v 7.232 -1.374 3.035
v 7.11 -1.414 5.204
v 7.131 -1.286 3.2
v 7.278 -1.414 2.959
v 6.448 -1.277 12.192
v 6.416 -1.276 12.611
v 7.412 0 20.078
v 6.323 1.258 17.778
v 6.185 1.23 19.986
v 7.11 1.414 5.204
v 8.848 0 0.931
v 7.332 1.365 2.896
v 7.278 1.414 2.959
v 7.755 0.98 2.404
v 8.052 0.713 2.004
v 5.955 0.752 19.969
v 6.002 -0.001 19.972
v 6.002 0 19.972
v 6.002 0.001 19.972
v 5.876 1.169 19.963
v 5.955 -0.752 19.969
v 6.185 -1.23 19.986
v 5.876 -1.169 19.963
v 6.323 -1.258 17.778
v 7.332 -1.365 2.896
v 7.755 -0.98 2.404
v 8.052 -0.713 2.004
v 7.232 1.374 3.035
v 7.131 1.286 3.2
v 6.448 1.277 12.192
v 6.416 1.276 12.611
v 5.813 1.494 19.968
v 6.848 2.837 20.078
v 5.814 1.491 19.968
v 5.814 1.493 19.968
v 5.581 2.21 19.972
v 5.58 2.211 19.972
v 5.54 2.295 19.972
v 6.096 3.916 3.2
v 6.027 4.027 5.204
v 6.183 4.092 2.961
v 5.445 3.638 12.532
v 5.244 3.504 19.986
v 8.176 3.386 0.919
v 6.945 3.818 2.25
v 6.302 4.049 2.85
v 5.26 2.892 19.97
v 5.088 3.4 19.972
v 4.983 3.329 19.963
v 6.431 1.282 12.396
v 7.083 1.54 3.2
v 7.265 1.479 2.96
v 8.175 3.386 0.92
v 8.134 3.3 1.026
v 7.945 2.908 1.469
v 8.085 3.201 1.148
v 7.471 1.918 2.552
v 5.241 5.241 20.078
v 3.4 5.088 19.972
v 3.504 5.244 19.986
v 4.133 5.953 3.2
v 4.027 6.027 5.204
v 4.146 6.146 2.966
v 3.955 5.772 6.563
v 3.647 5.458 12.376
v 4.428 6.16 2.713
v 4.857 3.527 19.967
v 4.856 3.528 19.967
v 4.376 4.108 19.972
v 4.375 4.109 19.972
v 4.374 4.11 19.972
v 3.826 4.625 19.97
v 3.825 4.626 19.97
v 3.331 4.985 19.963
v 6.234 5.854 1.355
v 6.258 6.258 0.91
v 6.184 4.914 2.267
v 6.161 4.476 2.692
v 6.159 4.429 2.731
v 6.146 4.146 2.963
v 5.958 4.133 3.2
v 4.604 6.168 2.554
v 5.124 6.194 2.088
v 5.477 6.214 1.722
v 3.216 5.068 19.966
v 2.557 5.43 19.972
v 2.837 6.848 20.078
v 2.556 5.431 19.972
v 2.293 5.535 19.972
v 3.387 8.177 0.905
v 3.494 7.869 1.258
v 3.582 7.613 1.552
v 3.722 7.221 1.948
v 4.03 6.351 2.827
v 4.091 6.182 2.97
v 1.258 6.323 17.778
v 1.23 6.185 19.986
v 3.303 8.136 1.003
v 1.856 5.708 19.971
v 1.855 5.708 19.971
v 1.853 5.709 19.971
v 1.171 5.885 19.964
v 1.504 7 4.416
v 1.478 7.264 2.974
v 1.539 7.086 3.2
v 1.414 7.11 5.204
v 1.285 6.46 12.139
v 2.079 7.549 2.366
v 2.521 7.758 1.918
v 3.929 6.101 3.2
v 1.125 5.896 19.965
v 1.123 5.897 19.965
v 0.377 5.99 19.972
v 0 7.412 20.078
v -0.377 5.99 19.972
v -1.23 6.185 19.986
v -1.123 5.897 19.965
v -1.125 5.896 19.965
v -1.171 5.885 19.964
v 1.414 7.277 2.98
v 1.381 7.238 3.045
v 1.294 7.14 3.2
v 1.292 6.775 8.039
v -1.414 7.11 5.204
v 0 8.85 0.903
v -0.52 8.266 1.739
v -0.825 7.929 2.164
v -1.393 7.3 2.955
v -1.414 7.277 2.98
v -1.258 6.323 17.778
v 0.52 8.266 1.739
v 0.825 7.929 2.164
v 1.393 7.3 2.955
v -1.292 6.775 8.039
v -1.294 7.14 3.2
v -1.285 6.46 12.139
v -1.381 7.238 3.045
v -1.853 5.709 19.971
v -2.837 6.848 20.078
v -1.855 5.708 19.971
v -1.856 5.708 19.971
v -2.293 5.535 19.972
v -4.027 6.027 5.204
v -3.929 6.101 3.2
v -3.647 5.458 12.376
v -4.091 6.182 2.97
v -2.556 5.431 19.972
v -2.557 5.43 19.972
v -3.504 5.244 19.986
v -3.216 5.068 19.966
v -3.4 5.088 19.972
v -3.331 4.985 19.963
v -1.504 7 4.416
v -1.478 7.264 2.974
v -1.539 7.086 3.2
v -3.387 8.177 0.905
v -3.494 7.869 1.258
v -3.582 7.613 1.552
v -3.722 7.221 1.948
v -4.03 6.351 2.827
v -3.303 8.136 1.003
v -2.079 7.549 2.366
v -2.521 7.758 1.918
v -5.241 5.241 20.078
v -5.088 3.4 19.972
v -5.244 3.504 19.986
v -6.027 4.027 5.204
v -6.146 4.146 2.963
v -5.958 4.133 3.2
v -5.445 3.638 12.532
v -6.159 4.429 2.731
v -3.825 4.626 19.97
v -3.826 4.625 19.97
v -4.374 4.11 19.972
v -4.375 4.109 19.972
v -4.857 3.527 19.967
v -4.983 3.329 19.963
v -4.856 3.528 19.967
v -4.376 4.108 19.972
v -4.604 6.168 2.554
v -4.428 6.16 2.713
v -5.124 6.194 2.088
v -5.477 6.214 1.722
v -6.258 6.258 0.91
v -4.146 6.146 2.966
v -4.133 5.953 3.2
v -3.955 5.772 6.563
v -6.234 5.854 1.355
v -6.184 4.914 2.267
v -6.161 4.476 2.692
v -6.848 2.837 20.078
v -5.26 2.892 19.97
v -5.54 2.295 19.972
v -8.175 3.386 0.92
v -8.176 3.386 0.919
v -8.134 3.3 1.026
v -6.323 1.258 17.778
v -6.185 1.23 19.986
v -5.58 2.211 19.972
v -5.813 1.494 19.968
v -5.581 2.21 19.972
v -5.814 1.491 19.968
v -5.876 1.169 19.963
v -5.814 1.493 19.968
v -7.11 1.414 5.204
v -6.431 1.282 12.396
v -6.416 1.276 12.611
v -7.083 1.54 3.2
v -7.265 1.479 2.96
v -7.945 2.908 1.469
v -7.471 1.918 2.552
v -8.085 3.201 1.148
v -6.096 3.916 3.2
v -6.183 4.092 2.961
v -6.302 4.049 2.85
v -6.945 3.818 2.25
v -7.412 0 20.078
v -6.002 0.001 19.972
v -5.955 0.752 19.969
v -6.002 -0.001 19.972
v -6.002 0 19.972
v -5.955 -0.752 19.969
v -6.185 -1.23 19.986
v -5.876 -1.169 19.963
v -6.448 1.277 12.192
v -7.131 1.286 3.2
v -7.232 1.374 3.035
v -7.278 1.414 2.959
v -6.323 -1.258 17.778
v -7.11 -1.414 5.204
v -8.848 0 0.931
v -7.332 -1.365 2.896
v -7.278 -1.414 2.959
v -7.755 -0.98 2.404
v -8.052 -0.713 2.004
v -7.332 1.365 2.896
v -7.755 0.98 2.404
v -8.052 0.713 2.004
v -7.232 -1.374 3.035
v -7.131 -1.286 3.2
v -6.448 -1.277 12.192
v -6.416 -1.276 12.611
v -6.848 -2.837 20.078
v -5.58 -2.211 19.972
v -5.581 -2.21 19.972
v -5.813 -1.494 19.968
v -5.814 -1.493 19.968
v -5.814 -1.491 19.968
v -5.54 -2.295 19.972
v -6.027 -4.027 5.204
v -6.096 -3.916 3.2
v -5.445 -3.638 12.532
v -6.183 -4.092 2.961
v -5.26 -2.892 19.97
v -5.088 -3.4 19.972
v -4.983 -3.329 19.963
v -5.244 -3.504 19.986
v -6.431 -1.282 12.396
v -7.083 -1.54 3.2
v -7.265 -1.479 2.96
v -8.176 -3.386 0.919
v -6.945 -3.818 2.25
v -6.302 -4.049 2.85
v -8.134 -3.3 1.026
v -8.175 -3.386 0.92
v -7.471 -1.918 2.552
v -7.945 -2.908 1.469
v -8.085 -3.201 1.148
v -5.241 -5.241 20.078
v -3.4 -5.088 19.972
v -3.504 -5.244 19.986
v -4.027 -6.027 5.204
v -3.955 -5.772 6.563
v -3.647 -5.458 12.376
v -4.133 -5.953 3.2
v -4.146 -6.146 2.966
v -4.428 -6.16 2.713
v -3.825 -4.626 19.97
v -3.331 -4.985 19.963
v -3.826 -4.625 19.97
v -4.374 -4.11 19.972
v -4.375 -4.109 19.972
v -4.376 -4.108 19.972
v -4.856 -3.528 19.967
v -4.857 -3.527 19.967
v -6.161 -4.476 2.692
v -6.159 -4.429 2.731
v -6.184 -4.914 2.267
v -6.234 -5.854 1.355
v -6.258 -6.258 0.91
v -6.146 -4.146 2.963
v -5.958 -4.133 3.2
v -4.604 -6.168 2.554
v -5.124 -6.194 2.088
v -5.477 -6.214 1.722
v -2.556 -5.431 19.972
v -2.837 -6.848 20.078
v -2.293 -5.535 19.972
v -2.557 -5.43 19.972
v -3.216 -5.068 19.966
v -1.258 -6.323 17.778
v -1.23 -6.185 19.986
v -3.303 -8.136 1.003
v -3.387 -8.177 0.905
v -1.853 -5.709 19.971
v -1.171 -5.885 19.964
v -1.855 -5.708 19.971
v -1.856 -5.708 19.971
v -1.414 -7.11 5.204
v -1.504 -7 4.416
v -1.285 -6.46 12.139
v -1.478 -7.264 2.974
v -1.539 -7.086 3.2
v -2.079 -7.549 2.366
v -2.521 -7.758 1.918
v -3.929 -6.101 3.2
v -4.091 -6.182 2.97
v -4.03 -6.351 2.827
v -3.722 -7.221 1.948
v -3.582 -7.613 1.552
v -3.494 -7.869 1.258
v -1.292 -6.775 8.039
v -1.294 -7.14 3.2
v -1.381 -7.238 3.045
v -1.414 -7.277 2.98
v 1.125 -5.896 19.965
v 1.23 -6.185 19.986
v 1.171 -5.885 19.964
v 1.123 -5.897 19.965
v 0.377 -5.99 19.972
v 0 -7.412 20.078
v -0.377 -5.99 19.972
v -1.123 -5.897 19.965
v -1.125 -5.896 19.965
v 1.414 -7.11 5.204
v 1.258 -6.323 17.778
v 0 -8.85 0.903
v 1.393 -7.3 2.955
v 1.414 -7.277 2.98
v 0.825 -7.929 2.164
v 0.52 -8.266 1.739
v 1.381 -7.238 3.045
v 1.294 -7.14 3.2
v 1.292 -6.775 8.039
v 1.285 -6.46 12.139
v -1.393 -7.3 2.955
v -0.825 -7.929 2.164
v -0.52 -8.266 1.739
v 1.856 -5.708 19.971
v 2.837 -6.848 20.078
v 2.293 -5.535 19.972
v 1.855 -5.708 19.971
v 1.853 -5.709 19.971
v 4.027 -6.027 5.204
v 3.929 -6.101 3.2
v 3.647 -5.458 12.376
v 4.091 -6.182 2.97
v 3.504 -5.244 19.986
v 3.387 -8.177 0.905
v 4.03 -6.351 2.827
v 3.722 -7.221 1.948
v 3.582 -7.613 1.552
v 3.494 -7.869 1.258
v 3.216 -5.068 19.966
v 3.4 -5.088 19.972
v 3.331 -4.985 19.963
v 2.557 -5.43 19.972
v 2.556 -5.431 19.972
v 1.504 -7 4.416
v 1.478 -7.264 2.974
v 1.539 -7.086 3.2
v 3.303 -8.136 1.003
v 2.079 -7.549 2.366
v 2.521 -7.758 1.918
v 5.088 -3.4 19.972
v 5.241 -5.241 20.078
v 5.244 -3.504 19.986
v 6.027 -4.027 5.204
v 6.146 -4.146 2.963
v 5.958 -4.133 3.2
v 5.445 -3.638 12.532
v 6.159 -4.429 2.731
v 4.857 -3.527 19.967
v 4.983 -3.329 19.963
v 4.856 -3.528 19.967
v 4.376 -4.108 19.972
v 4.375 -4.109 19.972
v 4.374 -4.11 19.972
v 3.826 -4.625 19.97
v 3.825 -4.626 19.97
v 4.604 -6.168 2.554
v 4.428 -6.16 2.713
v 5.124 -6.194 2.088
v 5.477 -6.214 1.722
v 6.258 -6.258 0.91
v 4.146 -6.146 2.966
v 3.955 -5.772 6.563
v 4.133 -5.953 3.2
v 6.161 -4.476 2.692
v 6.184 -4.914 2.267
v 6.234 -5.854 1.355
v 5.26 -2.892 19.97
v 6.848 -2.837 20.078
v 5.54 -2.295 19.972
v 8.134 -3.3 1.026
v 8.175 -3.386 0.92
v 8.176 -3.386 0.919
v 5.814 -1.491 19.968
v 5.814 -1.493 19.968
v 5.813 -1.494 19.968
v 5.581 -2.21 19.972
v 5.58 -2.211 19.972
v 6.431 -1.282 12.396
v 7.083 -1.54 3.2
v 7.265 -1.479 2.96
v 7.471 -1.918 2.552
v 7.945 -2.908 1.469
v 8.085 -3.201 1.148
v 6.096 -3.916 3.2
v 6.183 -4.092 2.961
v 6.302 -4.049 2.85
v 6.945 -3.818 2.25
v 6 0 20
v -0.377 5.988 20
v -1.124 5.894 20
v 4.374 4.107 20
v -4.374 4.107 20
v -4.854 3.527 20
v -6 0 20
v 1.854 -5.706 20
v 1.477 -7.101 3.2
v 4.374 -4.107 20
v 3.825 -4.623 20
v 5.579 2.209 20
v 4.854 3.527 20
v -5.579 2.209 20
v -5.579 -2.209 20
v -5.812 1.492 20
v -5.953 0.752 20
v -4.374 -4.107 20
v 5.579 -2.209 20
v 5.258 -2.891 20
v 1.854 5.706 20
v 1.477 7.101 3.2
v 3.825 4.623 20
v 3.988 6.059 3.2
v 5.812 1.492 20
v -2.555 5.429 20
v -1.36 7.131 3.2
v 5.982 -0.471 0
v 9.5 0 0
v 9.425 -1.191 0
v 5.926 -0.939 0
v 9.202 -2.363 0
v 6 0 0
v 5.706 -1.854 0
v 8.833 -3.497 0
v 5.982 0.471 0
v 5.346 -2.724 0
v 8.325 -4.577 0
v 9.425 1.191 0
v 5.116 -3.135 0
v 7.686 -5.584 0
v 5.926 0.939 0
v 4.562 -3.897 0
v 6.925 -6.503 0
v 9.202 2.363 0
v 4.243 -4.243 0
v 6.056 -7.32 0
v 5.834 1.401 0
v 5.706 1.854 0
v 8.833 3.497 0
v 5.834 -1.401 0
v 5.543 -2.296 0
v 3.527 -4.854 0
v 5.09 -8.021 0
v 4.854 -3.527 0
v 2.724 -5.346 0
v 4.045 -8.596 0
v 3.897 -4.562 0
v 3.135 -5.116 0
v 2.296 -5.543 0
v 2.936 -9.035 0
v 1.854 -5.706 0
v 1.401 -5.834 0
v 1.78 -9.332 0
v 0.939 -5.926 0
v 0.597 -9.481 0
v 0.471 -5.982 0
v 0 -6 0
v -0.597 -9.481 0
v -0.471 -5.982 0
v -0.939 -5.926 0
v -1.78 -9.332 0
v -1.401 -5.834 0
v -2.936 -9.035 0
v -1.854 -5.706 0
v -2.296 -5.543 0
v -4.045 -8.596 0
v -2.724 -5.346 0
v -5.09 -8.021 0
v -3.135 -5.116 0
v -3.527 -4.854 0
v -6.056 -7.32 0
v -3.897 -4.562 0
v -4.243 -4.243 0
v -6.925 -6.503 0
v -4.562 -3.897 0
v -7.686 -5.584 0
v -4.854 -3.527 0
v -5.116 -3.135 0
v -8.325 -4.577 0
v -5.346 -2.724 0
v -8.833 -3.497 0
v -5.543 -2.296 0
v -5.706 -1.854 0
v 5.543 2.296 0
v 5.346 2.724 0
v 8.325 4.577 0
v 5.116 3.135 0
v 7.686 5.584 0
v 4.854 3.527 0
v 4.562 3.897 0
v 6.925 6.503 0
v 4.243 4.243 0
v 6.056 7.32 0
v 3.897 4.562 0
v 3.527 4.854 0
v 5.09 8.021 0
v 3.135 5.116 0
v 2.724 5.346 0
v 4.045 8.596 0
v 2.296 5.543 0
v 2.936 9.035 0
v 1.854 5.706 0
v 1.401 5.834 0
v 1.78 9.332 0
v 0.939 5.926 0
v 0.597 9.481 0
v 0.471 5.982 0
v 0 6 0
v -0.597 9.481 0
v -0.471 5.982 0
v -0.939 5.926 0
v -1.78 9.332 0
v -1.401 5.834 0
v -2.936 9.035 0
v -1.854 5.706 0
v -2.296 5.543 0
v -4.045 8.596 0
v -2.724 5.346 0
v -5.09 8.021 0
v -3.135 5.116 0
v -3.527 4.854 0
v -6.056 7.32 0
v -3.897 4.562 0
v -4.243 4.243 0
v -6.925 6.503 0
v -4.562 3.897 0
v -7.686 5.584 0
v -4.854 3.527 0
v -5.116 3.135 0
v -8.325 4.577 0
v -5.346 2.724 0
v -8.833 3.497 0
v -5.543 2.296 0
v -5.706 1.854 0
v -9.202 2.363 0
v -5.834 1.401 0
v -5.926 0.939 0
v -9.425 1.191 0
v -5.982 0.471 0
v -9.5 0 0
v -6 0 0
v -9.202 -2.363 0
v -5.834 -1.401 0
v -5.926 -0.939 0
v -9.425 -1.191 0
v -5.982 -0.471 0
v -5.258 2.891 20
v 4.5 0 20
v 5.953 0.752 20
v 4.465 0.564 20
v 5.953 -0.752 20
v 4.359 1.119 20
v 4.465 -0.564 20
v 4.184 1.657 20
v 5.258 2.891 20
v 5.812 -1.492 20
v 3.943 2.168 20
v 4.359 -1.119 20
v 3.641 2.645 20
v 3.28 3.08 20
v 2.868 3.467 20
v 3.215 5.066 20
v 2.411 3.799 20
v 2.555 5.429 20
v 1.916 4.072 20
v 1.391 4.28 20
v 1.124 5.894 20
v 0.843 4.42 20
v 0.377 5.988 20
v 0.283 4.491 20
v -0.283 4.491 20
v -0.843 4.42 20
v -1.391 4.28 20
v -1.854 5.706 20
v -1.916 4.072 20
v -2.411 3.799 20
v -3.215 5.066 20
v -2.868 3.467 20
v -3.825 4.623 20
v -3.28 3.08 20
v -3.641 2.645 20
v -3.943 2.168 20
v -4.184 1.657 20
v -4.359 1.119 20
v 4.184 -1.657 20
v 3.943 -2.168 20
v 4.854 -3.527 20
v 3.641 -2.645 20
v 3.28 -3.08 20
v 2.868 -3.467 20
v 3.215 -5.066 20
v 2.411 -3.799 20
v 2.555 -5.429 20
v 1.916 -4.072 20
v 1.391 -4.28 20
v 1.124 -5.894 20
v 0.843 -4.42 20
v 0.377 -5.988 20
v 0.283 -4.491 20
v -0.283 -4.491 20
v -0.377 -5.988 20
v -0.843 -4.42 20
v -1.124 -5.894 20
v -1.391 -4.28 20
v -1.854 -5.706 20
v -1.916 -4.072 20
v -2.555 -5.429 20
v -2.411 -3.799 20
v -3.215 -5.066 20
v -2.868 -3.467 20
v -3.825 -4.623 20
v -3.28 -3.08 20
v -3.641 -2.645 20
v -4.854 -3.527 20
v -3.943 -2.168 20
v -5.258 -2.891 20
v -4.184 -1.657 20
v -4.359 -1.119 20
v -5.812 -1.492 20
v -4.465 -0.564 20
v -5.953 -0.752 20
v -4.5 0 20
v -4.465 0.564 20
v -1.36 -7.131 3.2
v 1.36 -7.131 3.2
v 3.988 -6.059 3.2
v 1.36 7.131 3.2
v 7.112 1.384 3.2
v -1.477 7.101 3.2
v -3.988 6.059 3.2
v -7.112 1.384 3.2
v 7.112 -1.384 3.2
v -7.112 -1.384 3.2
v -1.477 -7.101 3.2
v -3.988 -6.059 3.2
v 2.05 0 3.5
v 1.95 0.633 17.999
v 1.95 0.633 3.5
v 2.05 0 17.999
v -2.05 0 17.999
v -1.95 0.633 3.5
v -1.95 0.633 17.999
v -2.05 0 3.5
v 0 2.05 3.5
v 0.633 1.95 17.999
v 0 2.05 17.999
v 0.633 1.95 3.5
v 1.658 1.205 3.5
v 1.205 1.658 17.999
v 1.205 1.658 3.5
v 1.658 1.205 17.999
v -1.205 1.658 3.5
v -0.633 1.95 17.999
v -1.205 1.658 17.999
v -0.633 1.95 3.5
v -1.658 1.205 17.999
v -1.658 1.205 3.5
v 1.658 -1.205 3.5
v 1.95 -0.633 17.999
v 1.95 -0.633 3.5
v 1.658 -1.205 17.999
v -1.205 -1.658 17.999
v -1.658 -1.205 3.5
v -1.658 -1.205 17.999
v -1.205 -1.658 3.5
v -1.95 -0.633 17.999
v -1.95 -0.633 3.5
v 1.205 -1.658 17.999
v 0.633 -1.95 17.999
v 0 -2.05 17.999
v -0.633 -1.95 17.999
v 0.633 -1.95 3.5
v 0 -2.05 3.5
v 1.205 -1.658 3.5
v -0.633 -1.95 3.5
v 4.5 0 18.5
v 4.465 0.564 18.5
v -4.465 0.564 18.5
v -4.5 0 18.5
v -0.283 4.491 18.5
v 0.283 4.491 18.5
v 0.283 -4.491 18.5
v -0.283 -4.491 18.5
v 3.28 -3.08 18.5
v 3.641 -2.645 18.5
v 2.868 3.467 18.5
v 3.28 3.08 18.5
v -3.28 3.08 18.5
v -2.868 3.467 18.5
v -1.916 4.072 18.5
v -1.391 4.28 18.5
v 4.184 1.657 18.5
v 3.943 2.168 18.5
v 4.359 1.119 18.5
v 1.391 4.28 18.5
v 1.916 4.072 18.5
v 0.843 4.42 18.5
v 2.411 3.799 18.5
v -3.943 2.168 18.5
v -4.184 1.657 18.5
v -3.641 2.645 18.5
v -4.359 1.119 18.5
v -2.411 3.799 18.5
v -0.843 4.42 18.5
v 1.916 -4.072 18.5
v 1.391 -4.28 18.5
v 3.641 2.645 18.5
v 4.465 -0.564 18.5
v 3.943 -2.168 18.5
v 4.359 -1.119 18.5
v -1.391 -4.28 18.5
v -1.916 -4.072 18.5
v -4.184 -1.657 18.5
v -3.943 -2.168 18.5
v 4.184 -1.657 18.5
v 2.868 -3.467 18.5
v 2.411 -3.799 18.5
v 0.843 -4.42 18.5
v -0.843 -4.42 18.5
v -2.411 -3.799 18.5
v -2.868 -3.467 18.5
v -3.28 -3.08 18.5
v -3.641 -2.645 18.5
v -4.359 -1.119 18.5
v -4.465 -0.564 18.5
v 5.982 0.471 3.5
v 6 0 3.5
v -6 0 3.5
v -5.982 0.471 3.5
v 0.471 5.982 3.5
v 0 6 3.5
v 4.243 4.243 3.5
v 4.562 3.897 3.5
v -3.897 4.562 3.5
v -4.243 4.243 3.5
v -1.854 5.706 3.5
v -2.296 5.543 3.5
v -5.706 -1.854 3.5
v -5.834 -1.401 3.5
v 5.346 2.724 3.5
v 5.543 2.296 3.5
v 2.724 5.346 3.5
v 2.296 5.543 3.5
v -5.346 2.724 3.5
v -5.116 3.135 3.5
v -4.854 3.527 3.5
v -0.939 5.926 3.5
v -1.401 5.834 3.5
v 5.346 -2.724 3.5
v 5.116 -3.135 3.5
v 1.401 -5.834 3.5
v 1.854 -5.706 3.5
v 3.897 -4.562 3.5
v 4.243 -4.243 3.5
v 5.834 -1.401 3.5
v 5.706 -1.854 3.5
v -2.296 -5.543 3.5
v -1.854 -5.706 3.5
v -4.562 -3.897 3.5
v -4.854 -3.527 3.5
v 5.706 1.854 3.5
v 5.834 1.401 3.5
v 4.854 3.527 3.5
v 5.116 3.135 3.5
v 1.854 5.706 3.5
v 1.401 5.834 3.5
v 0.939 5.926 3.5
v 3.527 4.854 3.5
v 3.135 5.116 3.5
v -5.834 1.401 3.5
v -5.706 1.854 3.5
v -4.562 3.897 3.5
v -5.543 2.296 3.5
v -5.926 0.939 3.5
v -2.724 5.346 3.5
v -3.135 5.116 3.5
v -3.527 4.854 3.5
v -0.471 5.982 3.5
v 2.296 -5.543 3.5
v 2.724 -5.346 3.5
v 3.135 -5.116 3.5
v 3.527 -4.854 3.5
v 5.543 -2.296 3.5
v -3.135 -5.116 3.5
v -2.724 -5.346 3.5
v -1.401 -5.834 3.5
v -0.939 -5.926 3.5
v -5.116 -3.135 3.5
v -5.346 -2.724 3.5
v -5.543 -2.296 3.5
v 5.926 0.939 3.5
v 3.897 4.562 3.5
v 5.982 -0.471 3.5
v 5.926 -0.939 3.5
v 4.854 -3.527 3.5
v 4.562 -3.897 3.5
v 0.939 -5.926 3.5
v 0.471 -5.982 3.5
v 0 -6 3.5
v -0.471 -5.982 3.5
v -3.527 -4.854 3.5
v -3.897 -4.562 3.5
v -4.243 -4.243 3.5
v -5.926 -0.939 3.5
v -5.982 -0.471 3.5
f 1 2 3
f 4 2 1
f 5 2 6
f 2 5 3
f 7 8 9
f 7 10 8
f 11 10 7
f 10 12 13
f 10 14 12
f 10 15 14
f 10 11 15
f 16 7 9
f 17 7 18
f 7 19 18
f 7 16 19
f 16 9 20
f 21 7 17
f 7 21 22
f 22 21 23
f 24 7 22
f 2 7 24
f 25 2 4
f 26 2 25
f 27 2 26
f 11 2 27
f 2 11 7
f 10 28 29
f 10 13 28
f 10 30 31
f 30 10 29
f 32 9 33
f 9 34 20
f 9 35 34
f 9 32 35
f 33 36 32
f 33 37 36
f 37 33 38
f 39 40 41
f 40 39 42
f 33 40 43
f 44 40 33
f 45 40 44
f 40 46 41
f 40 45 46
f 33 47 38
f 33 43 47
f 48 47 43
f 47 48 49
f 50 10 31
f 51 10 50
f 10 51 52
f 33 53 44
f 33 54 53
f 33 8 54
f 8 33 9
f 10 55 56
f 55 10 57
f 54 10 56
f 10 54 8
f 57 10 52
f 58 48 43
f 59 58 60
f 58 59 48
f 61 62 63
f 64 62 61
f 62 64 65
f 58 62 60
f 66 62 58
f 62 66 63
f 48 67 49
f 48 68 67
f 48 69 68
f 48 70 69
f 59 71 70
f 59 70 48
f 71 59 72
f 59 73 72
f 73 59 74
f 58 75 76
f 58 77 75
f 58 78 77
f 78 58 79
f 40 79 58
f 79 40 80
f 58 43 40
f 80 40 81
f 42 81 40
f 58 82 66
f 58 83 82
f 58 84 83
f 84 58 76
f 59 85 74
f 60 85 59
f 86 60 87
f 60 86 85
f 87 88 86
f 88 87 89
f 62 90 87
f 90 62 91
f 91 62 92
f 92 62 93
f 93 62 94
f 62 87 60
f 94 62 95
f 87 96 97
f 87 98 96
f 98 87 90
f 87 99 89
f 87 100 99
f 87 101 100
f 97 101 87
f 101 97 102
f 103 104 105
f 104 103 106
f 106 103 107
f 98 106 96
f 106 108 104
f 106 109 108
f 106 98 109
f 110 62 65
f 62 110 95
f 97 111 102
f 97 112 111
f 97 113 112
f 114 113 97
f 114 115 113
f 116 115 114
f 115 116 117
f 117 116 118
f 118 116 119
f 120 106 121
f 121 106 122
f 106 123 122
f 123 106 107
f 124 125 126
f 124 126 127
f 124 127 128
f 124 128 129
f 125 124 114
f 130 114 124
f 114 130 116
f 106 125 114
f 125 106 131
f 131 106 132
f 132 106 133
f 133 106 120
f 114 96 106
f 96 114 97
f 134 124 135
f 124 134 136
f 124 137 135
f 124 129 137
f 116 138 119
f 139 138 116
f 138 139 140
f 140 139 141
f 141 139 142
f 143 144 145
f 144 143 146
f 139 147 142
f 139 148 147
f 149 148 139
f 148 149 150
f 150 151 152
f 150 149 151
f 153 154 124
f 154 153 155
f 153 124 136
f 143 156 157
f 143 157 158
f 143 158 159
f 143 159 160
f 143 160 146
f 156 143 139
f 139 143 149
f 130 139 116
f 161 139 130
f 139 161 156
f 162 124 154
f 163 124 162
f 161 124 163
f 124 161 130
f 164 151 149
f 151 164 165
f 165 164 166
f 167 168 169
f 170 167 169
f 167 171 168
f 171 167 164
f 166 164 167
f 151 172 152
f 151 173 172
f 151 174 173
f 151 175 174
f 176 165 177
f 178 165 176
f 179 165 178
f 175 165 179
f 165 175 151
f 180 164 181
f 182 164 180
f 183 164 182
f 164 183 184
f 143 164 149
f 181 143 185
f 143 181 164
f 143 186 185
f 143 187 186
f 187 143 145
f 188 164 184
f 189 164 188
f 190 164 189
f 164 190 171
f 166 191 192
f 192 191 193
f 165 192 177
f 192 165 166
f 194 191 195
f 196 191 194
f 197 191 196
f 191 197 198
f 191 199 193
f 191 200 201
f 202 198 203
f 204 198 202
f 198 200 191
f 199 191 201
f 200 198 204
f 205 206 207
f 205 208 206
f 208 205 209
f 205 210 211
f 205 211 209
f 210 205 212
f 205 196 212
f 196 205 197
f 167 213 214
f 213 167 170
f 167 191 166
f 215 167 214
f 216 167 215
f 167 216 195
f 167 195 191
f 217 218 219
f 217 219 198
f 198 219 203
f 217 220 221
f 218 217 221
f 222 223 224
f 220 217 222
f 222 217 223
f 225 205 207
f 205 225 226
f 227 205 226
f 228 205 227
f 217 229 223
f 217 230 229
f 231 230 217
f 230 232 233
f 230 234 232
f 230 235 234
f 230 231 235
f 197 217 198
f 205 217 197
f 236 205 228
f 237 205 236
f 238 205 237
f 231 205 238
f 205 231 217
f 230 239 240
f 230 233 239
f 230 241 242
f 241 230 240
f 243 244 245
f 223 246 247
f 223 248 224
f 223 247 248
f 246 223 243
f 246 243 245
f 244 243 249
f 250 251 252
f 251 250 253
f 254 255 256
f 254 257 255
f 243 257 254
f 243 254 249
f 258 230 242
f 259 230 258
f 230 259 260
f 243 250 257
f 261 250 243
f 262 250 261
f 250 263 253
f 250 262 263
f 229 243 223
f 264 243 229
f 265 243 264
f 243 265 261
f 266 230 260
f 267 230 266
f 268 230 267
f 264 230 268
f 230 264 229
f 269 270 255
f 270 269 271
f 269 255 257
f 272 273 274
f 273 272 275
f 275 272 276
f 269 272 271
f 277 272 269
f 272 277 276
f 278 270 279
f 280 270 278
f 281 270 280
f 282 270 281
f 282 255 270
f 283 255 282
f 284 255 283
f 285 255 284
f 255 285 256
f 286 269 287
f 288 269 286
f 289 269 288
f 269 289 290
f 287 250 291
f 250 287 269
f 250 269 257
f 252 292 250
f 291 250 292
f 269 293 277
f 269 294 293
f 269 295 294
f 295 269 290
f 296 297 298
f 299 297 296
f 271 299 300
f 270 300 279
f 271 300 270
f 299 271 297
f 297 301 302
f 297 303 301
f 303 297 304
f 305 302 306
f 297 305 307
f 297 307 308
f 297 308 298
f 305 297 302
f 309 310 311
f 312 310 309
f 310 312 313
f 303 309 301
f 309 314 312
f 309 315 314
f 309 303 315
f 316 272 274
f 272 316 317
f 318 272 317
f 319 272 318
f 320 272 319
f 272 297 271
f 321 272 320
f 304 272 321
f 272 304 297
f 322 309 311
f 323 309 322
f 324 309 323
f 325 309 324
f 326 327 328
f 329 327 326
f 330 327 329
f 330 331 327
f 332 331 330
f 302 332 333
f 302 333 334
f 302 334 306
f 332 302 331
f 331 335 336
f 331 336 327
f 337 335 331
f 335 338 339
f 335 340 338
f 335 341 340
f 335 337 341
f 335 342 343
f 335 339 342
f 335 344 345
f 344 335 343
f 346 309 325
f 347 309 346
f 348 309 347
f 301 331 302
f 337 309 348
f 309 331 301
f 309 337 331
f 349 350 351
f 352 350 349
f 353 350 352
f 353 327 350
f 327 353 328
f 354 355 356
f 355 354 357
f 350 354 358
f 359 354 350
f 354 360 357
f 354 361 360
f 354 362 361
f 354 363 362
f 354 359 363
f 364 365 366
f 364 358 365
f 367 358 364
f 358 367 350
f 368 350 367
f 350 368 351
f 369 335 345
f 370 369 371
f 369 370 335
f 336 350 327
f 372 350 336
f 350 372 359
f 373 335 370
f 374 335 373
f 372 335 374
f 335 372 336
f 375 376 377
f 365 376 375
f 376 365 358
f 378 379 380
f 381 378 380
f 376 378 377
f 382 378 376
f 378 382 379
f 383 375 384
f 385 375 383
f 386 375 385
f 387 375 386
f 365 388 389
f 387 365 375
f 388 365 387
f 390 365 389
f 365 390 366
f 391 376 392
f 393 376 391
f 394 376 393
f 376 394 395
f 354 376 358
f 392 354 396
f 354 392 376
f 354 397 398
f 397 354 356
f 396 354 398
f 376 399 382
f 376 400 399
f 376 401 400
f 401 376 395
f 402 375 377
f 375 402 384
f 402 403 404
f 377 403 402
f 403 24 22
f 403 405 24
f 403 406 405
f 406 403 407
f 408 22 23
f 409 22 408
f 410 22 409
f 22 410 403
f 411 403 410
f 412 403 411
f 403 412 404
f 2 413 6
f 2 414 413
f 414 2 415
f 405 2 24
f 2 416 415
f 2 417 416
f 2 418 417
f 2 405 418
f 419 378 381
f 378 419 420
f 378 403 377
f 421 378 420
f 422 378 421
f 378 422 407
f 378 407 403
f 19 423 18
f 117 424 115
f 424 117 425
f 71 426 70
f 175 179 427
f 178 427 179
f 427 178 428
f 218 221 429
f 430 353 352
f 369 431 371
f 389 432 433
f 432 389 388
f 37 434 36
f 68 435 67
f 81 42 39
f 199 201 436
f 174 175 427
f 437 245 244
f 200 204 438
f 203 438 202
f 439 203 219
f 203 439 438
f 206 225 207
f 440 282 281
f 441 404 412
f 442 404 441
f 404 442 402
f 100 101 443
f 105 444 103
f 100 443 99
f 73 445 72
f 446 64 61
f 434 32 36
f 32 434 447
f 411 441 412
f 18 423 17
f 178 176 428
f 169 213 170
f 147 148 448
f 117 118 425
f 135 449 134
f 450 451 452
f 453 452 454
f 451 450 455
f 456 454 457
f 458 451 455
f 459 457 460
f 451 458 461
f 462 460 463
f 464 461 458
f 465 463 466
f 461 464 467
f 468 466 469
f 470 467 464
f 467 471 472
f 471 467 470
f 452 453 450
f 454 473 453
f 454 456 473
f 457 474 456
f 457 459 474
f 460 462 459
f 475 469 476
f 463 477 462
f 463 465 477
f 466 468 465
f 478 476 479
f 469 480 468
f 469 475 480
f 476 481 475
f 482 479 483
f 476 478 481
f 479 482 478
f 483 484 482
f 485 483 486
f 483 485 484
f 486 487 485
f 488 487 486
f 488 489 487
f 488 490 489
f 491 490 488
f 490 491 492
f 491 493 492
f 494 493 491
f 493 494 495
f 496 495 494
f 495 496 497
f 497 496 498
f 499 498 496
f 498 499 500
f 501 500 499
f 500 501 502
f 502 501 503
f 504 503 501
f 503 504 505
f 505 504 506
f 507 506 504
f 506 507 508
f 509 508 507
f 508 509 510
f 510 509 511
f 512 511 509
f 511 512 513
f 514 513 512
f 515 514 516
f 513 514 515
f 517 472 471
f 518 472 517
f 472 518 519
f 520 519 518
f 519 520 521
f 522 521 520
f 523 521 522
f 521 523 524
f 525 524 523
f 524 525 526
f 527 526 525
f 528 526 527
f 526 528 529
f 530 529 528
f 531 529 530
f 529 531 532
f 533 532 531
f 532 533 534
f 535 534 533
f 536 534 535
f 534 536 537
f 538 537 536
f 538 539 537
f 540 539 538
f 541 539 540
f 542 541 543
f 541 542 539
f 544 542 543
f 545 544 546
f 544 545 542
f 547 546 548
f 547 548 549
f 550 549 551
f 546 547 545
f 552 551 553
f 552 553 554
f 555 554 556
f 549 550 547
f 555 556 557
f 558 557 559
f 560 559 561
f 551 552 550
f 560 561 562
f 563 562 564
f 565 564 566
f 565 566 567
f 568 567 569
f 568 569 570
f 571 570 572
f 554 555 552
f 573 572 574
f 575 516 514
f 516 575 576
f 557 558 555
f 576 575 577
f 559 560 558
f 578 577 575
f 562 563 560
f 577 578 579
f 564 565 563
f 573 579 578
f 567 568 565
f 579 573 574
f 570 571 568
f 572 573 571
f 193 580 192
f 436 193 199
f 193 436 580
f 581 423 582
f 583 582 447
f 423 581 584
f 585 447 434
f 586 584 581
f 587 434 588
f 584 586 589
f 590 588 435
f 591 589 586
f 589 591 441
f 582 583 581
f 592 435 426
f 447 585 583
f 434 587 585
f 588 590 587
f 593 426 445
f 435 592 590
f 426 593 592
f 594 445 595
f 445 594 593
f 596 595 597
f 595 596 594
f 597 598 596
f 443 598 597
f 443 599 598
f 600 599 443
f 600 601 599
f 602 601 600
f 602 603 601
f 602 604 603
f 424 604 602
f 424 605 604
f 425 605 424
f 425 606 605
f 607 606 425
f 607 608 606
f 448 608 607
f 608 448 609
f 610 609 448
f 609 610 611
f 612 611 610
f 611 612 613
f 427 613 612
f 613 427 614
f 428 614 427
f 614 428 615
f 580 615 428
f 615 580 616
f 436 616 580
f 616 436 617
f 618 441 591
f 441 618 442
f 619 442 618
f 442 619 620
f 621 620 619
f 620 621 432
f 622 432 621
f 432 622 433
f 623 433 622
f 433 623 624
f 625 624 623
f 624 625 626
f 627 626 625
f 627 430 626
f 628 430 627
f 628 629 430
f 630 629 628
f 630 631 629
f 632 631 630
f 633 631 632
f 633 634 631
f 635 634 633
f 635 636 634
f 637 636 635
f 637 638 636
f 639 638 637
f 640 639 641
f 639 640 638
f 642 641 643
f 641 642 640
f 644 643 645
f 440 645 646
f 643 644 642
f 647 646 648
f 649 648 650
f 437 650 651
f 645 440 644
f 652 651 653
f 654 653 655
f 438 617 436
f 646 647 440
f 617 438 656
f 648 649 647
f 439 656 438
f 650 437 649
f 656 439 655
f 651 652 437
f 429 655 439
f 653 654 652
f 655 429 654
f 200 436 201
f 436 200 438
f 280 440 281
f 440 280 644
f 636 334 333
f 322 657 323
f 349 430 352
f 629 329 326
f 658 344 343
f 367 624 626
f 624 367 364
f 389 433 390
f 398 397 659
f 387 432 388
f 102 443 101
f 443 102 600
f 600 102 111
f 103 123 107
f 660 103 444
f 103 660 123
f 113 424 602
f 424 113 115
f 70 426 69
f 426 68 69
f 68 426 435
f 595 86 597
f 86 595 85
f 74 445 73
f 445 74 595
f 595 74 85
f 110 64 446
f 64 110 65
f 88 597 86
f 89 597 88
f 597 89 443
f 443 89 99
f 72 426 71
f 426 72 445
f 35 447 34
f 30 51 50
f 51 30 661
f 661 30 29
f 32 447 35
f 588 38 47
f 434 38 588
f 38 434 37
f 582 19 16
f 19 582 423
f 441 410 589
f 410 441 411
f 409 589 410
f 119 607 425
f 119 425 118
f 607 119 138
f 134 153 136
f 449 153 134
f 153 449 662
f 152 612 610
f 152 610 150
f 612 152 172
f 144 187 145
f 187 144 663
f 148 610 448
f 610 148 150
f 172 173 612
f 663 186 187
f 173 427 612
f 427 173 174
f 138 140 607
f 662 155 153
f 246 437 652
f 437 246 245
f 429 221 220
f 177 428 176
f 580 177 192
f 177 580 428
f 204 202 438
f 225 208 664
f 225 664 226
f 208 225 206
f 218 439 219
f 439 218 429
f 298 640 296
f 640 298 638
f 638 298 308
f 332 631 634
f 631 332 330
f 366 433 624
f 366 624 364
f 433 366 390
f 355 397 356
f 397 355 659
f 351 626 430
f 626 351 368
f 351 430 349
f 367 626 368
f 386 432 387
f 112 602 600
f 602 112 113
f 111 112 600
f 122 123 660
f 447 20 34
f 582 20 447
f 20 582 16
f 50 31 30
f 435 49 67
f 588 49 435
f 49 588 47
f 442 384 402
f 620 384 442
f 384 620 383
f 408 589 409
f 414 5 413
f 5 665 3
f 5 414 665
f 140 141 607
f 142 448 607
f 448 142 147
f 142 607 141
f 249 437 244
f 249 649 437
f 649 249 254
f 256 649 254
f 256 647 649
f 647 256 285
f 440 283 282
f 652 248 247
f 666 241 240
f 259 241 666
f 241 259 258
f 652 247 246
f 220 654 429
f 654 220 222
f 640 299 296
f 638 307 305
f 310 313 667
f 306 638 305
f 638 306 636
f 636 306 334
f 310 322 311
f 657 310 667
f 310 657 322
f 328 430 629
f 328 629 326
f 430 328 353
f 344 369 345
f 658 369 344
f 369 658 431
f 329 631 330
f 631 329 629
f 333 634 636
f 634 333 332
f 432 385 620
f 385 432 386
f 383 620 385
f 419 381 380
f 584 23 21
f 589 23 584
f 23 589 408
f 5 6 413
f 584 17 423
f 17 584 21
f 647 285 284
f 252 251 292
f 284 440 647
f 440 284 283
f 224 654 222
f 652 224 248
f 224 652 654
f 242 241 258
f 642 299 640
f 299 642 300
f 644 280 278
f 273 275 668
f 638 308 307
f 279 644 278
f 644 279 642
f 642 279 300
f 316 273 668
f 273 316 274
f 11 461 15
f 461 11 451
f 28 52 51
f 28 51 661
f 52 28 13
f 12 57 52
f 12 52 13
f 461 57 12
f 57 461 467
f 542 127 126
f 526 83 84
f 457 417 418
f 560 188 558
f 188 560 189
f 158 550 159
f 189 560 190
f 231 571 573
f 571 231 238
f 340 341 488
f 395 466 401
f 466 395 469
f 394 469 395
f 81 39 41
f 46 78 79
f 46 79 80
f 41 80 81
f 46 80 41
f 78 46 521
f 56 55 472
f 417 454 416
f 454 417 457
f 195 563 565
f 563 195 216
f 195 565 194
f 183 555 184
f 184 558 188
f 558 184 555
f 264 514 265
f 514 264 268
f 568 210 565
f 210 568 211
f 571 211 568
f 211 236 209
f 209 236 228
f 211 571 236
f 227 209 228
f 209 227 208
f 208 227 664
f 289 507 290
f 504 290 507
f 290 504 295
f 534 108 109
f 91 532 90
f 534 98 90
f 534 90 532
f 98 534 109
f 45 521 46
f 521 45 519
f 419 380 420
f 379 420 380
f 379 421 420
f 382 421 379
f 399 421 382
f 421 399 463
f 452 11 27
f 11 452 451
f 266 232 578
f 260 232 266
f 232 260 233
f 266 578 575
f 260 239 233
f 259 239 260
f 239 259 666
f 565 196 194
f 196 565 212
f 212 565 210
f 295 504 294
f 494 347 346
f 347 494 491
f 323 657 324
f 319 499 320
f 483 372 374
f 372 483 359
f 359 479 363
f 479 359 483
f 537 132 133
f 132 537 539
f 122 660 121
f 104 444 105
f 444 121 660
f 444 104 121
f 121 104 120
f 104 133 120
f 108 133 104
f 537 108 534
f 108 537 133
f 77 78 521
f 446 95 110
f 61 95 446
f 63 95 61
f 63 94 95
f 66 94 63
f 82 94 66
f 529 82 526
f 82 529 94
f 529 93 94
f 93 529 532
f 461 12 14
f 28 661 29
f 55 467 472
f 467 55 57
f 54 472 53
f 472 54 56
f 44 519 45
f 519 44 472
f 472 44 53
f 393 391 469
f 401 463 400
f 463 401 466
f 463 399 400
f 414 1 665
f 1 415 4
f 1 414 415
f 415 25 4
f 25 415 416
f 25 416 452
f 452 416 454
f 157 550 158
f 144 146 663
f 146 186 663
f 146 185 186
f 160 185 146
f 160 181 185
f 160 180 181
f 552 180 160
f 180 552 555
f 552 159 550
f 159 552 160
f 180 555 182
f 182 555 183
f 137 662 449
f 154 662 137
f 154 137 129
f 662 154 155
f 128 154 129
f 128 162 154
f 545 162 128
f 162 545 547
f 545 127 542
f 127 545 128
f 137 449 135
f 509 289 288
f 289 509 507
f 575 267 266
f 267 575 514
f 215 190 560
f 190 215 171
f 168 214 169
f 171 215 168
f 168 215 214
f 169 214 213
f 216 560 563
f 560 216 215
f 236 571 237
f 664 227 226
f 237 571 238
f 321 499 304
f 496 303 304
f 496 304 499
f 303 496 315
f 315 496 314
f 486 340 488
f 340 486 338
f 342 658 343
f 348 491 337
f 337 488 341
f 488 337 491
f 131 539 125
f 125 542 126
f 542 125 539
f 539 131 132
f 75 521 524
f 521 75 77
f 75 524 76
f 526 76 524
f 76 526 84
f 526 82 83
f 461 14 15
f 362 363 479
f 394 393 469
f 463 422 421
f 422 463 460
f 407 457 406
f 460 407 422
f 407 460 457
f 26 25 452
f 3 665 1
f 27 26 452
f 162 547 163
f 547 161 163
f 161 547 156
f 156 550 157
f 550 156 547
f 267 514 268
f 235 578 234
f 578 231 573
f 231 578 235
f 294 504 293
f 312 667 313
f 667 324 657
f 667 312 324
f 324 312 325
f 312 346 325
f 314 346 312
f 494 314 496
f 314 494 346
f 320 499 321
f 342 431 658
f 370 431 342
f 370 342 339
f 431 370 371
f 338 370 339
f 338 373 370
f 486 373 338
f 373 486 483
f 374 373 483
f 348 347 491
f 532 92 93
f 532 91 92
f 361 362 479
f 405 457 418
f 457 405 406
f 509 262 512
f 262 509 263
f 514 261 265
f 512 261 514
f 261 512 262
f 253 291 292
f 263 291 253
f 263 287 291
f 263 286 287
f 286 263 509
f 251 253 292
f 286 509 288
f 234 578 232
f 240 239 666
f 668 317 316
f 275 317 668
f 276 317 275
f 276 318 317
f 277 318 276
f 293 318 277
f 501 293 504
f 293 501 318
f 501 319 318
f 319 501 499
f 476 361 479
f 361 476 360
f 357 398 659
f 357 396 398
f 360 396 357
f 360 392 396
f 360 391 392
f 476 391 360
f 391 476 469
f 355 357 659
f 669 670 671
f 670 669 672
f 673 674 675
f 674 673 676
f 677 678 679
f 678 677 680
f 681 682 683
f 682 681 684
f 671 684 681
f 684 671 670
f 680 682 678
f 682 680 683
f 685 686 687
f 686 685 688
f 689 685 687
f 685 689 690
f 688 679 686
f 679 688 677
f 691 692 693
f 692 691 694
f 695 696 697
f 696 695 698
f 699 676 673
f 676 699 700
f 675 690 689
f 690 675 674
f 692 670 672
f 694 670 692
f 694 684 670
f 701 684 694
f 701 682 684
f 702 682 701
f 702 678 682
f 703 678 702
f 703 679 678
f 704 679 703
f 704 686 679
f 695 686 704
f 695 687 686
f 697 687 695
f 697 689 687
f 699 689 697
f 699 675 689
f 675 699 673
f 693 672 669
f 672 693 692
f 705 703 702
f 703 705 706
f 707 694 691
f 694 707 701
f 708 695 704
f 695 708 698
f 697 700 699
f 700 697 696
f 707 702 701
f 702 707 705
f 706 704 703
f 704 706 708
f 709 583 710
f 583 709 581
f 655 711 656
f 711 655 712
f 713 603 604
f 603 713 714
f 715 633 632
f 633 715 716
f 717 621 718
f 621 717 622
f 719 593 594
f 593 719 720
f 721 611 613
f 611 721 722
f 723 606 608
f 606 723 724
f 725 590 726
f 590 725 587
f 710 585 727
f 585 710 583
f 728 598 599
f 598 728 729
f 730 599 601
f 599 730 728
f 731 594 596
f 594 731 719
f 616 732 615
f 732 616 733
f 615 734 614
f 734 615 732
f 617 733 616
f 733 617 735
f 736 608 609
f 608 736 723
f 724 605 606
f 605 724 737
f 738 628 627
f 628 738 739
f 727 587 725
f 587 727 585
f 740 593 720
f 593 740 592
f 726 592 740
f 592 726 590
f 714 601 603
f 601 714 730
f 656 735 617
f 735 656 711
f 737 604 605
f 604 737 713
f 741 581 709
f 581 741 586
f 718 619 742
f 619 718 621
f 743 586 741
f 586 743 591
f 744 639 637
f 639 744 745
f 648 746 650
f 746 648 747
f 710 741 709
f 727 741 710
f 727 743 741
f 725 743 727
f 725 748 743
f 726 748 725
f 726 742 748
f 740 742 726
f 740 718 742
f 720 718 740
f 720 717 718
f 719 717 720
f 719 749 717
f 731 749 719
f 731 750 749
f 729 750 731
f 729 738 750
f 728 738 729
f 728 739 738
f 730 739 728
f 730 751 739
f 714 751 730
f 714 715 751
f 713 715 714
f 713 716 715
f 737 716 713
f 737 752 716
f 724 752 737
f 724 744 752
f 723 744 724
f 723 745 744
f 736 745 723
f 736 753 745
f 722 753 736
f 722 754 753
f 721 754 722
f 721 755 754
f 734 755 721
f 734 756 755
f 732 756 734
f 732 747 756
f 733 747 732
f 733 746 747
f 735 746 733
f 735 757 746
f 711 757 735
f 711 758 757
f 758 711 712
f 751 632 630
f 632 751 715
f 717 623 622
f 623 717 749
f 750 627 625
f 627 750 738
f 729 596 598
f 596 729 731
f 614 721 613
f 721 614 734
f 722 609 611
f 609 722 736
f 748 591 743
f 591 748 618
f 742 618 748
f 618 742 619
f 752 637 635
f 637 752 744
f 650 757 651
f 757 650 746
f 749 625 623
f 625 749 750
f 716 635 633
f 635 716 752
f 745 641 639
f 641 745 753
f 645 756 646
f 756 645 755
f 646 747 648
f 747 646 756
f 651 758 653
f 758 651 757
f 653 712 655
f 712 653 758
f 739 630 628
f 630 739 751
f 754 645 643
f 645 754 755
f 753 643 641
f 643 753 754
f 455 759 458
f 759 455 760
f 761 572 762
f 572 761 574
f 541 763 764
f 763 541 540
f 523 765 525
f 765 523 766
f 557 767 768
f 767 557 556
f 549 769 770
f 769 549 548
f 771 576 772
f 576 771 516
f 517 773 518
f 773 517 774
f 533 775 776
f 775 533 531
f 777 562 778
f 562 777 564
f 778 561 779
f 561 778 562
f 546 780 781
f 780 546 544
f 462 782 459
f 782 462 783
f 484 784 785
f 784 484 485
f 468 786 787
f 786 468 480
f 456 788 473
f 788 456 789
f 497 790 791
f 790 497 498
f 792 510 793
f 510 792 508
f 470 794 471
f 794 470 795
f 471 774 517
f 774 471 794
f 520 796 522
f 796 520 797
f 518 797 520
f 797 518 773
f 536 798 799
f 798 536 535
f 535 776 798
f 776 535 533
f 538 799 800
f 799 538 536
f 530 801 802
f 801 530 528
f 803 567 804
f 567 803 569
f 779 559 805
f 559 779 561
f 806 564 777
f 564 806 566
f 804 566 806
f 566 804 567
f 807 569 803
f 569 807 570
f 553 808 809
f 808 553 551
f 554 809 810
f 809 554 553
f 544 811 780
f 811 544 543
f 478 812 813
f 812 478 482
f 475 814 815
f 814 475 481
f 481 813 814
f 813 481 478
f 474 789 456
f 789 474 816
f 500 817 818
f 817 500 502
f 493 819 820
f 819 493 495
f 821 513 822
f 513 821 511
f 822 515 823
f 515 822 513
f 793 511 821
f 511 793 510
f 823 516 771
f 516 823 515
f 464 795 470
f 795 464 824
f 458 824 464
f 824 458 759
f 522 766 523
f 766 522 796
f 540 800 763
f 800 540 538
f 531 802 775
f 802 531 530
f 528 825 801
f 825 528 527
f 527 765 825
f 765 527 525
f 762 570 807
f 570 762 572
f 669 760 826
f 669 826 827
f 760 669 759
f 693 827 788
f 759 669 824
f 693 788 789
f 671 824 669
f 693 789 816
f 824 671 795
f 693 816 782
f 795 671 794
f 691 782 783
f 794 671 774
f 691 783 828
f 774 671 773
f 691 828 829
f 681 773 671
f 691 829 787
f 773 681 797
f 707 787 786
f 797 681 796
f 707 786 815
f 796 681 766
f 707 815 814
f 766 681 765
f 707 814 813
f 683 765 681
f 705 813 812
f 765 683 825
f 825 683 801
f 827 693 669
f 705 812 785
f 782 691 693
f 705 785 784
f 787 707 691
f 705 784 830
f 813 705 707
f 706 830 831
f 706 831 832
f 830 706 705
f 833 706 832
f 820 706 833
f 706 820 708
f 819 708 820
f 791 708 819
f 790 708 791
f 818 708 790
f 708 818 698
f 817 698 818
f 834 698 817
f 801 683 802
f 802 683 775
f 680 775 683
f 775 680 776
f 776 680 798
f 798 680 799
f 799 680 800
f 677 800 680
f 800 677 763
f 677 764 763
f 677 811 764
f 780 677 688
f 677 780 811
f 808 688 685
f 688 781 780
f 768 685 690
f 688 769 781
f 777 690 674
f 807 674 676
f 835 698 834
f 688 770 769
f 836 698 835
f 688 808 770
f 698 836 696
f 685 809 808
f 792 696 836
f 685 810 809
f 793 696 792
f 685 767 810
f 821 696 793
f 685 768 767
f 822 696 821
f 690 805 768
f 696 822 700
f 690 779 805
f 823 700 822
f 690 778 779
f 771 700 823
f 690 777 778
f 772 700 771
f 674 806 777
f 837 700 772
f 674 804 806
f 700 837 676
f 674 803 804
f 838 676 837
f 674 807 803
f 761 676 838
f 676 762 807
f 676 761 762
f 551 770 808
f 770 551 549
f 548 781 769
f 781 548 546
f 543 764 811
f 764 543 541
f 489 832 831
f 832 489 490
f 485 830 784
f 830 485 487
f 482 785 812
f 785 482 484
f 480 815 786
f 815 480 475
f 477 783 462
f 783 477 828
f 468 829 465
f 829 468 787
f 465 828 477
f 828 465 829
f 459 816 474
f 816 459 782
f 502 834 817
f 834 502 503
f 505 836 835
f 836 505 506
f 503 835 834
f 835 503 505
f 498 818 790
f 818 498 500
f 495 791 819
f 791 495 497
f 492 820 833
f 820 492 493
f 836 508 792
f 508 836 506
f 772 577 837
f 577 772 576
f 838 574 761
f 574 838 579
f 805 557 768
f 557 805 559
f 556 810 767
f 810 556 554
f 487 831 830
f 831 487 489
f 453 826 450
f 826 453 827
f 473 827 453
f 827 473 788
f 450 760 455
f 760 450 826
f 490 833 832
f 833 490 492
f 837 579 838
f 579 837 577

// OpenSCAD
/*
*******************************************
Objekt Info: Poti Drehknopf

*******************************************
Version: 16.01.2023 khf
*******************************************
*/

//***************   Auswahl   *************
// Form der Oberseite des Knopfes.  Der Typ "Einbau" kann lackiert werden.
CapType = 1;	// [0:Flach, 1:Einbau, 2:Dome]

// Möchtest du einen großen StilZeiger?
TimerKnob=0;	// [0:Nein, 1:Ja]

// Möchtest du eine Markierung oben, um die Richtung anzuzeigen?
Pointer1 = 0;	// [0:Nein, 1:Ja]

// Möchtest du einen Richtungszeiger?
Pointer2 = 0;	// [0:Nein, 1:Ja]

// Willst du einen Rändelung um den Knopf?
Knurled = 1;	// [0:Nein, 1:Ja]

//***************   Libraries  ************

//keine

//*****************************************

//***************  Parameter   *************
$fn=80;

// Loch-Durchmesser in mm.
HoleDiameter = 4.1;

// Tiefe des Lochs im Boden (in mm). 
HoleDepth = 18;

// Wenn du ein D-förmiges Loch wünscht, stelle die Dicke auf der flachen Seite (in mm) ein.  Größere Werte für die Ebene machen das Loch kleiner.
HoleFlatThickness = 0;

// Höhe (in mm).  Wenn die Kuppelkappe ausgewählt ist, ist sie nicht in der Höhe enthalten.  Auch die Wellenlänge wird nicht gezählt.
KnobHeight = 20;

// Durchmesser des Knopfes in mm.  
KnobDiameter = 15;

// 0 = Verjüngung
TaperPercentage = 20;		// [0:0%, 10:10%, 20:20%, 30:30%, 40:40%, 50:50%]

// Breite des Rings "Dial" (in mm).  0= keine RIng
RingWidth = 2;

// Die Anzahl der Markierungen auf dem Zifferblatt.  0 = keine Markierungen   (RingWidth muss ungleich Null sein.)
RingMarkings = 0;

// Durchmesser des Lochs für die Befestigungsschraube in mm.  0 = kein Loch
ScrewHoleDiameter = 0;

//  Länge der Welle auf der Unterseite des Knopfes (in mm).  0 = keine Welle
ShaftLength = 0;

// Durchmesser der Welle auf der Unterseite des Knopfes in mm.  (ShaftLength größer Null sein.)
ShaftDiameter = 0;

// Möchtest du eine Kerbe in der Welle?  Es kann für einen Einpressknopf verwendet werden (anstelle einer Befestigungsschraube).  (ShaftLength größer Null sein.)
NotchedShaft = 0;	// [0:No, 1:Yes]


//*****************************************

//**************   Programm  **************

//////////////////////////
//Erweiterte Einstellungen
//////////////////////////

RingThickness = 5*1;
DivotDepth = 1.5*1;
MarkingWidth = 1.5*1;
DistanceBetweenKnurls = 3*1;
TimerKnobConst = 1.8*1;

//////////////////////////
//Berechnungen
//////////////////////////

PI=3.14159265*1;
KnobMajorRadius = KnobDiameter/2;
KnobMinorRadius = KnobDiameter/2 * (1 - TaperPercentage/100);
KnobRadius = KnobMinorRadius + (KnobMajorRadius-KnobMinorRadius)/2;
KnobCircumference = PI*KnobDiameter;
Knurls = round(KnobCircumference/DistanceBetweenKnurls);
Divot=CapType;

TaperAngle=asin(KnobHeight / (sqrt(pow(KnobHeight, 2) +
		pow(KnobMajorRadius-KnobMinorRadius,2)))) - 90;

DivotRadius = KnobMinorRadius*.4;

difference() {
union()
{
translate([0, 0, (ShaftLength==0)? 0 : ShaftLength-0.001])
difference()
{
union()
{
	// Primary knob cylinder
	cylinder(h=KnobHeight, r1=KnobMajorRadius, r2=KnobMinorRadius,
			$fn=50);
	
	if (Knurled)
		for (i=[0 : Knurls-1])
			rotate([0, 0, i * (360/Knurls)])
				translate([KnobRadius, 0, KnobHeight/2])
					rotate([0, TaperAngle, 0]) rotate([0, 0, 45])
						cube([2, 2, KnobHeight+.001], center=true);

 	if (RingMarkings>0)
		for (i=[0 : RingMarkings-1])
			rotate([0, 0, i * (360/RingMarkings)])
				translate([KnobMajorRadius + RingWidth/2, 0, 1])
					cube([RingWidth*.5, MarkingWidth, 2], center=true);		
	
	if (Pointer2==1)
		translate([KnobRadius, 0, KnobHeight/2-2])
			rotate([0, TaperAngle, 0])
				cube([8, 3, KnobHeight], center=true);		

	if (RingWidth>0)
		translate([0, 0, RingThickness/2])
			cylinder(r1=KnobMajorRadius + RingWidth, r2=KnobMinorRadius,
					h=RingThickness, $fn=50, center=true);

	if (Divot==2)
		translate([0, 0, KnobHeight])
			difference()
			{
				scale([1, 1, 0.5])
					sphere(r=KnobMinorRadius, $fn=50, center=true);

				translate([0, 0, 0-(KnobMinorRadius+.001)])
					cube([KnobMinorRadius*2.5, KnobMinorRadius*2.5,
							KnobMinorRadius*2], center=true);
			}

	if (TimerKnob==1) intersection()
		{
			translate([0, 0, 0-(KnobDiameter*TimerKnobConst) + KnobHeight])
			sphere(r=KnobDiameter*TimerKnobConst, $fn=80, center=true);		
	
			translate([0-(KnobDiameter*TimerKnobConst)*0.1, 0,
					KnobHeight/2])
				scale([1, 0.5, 1])
					cylinder(h=KnobHeight, r=(KnobDiameter*TimerKnobConst) *
							0.8, $fn=3, center=true);
		}
}

// Zeiger1
if (Pointer1==1)
	translate([KnobMinorRadius*.55, 0, KnobHeight + DivotRadius*.6])
		sphere(r=DivotRadius, $fn=40);

// Divot1: Zentrierter zylynischer Divot
if (Divot==1)
	translate([0, 0, KnobHeight])
		cylinder(h=DivotDepth*2, r=KnobMinorRadius-1.5, $fn=50,
				center=true);

if (ShaftLength==0)
{
	// Loch für die Welle
	translate([0, 0, HoleDepth/2 - 0.001])
		difference()
		{
			cylinder(r=HoleDiameter/2, h=HoleDepth, $fn=20,
					center=true);
	
			// D-förmiges Loch
			translate([(0-HoleDiameter)+HoleFlatThickness, 0, 0])
				cube([HoleDiameter, HoleDiameter, HoleDepth+.001],
						center=true);
		}
	
	// Loch für die Befestigungsschraube
	if (ScrewHoleDiameter>0)
		translate([0 - (KnobMajorRadius+RingWidth+1)/2, 0,
				HoleDepth/2])
			rotate([0, 90, 0])
			cylinder(h=(KnobMajorRadius+RingWidth+1),
					r=ScrewHoleDiameter/2, $fn=20, center=true);
}

// Stelle sicher, dass die unteren Enden bei z=0 sind
translate([0, 0, -10])
	cube([(KnobMajorRadius+RingWidth) * 3,
			(KnobMajorRadius+RingWidth) * 3, 20], center=true);
}

if (ShaftLength>0)
	difference()
	{
		translate([0, 0, ShaftLength/2])
			cylinder(h=ShaftLength, r=ShaftDiameter/2, $fn=20,
					center=true);

		if (NotchedShaft==1)
		{
			cube([HoleDiameter/2, ShaftDiameter*2, ShaftLength],
					center=true);
		}

		// Loch für die Welle
		translate([0, 0, HoleDepth/2 - 0.001])
			difference()
			{
				cylinder(r=HoleDiameter/2, h=HoleDepth, $fn=20,
						center=true);
		
				// D-förmiges Loch
				translate([(0-HoleDiameter)+HoleFlatThickness, 0, 0])
					cube([HoleDiameter, HoleDiameter, HoleDepth+.001],
							center=true);
			}
		
		// Loch für die Befestigungsschraube
		if (ScrewHoleDiameter>0)
			translate([0 - (KnobMajorRadius+RingWidth+1)/2, 0,
					HoleDepth/2])
				rotate([0, 90, 0])
				cylinder(h=(KnobMajorRadius+RingWidth+1),
						r=ScrewHoleDiameter/2, $fn=20, center=true);
	}
}


translate(v = [0, 0, 1]) { 
cylinder(h = 5, r1 = 6, r2 = 6, center = true);
}
translate(v = [0, 0, 4]) { 
cylinder(h = 0, r1 = 3, r2 = 3, center = true);
    }
}
